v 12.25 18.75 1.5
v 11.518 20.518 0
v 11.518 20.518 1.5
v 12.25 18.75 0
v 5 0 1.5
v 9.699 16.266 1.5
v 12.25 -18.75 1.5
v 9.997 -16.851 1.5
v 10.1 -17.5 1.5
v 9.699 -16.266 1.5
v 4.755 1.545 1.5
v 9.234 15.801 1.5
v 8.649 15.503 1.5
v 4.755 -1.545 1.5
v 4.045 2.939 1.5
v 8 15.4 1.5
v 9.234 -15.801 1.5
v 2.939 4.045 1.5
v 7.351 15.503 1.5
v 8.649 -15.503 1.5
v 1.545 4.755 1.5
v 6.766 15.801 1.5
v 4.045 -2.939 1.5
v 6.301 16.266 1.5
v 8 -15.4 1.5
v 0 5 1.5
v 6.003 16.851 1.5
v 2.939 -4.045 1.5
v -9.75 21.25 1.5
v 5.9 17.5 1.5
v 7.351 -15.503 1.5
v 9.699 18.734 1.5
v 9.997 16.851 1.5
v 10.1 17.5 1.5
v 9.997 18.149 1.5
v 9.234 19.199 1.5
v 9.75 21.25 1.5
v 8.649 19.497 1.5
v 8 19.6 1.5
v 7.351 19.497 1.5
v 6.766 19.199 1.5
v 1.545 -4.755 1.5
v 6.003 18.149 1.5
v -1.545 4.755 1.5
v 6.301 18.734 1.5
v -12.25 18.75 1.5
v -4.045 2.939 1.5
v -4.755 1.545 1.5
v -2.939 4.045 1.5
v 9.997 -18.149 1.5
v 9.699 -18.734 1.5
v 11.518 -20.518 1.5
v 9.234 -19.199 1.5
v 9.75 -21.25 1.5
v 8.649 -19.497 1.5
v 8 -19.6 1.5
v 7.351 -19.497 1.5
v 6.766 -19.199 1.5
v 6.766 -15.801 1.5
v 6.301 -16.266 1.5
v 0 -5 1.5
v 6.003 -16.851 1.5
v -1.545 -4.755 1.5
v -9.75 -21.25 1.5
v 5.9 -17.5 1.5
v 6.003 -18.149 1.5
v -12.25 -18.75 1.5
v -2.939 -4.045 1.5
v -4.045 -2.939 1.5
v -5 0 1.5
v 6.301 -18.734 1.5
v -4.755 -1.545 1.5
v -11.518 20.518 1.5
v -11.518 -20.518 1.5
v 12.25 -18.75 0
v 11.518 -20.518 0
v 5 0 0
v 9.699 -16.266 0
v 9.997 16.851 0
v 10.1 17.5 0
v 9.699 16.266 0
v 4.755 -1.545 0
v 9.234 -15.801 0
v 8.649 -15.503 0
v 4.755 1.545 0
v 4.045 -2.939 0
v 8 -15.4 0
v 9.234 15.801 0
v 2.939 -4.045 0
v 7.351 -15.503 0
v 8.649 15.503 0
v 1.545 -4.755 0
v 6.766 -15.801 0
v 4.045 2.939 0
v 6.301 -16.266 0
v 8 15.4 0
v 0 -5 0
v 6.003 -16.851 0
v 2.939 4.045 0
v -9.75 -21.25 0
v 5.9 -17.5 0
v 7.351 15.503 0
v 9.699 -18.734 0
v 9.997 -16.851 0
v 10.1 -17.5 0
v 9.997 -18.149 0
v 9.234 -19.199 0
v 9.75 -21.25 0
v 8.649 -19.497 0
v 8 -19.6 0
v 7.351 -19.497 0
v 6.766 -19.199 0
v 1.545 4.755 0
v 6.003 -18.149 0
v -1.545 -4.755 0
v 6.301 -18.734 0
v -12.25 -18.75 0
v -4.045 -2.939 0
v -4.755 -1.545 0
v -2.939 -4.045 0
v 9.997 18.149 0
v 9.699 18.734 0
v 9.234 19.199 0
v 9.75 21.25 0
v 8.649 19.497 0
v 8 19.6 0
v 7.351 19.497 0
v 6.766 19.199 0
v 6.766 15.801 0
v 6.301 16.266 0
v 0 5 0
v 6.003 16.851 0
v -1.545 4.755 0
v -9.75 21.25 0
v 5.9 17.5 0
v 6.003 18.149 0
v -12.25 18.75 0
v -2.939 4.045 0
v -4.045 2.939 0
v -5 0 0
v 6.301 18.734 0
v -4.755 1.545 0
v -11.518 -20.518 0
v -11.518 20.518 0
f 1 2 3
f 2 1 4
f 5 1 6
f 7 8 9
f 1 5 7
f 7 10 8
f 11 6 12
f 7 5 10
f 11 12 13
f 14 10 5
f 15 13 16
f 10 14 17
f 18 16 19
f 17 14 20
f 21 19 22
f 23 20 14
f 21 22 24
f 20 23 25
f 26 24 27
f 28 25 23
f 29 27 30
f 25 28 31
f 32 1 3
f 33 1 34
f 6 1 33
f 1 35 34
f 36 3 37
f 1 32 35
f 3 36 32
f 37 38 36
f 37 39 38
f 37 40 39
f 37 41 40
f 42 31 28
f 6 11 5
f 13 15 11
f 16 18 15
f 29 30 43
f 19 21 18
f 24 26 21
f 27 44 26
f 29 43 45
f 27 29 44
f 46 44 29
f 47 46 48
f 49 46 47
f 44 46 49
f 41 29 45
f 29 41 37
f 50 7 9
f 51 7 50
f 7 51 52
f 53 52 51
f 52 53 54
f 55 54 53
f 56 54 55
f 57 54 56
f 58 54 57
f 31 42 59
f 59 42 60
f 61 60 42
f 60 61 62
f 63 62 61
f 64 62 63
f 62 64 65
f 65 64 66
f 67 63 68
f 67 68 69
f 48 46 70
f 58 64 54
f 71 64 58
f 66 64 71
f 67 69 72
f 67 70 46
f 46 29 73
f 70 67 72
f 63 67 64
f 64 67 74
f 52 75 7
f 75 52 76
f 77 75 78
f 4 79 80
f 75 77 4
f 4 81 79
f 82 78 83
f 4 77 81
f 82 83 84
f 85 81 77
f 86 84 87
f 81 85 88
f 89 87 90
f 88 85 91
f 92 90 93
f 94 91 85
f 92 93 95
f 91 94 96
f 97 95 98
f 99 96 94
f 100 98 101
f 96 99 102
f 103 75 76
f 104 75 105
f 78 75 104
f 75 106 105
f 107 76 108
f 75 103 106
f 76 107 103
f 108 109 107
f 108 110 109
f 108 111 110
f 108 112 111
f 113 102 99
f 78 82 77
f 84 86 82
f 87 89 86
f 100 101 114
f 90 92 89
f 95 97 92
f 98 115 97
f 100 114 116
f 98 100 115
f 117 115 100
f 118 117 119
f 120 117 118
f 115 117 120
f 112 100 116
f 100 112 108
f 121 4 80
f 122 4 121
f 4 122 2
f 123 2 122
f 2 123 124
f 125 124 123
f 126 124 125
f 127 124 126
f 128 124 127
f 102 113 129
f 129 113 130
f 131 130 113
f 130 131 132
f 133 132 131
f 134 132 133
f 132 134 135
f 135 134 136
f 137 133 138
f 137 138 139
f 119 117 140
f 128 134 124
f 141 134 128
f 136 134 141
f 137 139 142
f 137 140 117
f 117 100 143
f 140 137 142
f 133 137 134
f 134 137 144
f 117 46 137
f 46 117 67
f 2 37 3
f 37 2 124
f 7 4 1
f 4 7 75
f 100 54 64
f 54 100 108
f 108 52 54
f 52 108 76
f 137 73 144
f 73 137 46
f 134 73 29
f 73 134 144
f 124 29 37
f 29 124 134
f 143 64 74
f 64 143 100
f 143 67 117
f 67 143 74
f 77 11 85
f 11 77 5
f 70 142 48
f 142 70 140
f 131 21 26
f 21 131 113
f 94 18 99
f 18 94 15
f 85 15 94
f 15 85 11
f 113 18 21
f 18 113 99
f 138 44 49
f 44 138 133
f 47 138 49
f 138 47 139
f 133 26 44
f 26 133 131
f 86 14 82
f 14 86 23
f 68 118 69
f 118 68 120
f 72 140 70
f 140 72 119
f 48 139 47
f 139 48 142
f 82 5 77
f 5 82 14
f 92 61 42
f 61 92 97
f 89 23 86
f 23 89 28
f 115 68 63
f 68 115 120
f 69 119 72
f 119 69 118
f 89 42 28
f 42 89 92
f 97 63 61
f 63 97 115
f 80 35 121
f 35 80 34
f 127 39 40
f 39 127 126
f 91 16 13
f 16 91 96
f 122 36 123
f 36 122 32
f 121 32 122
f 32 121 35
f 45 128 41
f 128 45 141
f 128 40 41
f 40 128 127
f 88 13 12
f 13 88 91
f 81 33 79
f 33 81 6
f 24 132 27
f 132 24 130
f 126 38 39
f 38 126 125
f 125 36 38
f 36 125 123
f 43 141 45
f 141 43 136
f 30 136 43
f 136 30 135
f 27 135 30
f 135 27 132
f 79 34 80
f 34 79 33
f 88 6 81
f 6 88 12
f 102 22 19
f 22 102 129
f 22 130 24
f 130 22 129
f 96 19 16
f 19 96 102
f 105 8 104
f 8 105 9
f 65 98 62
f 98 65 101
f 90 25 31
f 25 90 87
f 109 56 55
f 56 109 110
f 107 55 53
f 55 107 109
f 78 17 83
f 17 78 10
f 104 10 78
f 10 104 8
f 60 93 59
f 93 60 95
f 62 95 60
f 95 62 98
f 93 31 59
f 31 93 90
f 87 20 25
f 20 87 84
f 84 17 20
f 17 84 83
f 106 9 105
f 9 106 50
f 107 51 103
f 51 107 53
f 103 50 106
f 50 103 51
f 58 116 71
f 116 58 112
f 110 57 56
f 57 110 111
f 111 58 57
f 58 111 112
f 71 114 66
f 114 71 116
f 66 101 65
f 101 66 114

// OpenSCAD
//A motor mounting bracket for 28BYJ-48 stepper motor

motorplate(40,22,1.5);

module motorplate(platew,platel,height) {
    holespace = 35/2;
    difference() {
        roundsquare(platel,platew,height,5);
        
        //Holes
        translate([0,0,-2])
            cylinder(d=10,h=height+4,$fn=20);
        //Mounting holes
        translate([8,holespace,-2])
            cylinder(d=4.2,h=height+4,$fn=20);
        translate([8,-holespace,-2])
            cylinder(d=4.2,h=height+4,$fn=20);
    }
}

module roundsquare(width,length,height,corner) {
    w2=width-corner/2;
    l2=length-corner/2;
    hull(){
        translate([-w2/2,-l2/2,0])
            cylinder(d=corner,h=height);
        translate([w2/2,-l2/2,0])
            cylinder(d=corner,h=height);
        translate([w2/2,l2/2,0])
            cylinder(d=corner,h=height);
        translate([-w2/2,l2/2,0])
            cylinder(d=corner,h=height);
    }
}
